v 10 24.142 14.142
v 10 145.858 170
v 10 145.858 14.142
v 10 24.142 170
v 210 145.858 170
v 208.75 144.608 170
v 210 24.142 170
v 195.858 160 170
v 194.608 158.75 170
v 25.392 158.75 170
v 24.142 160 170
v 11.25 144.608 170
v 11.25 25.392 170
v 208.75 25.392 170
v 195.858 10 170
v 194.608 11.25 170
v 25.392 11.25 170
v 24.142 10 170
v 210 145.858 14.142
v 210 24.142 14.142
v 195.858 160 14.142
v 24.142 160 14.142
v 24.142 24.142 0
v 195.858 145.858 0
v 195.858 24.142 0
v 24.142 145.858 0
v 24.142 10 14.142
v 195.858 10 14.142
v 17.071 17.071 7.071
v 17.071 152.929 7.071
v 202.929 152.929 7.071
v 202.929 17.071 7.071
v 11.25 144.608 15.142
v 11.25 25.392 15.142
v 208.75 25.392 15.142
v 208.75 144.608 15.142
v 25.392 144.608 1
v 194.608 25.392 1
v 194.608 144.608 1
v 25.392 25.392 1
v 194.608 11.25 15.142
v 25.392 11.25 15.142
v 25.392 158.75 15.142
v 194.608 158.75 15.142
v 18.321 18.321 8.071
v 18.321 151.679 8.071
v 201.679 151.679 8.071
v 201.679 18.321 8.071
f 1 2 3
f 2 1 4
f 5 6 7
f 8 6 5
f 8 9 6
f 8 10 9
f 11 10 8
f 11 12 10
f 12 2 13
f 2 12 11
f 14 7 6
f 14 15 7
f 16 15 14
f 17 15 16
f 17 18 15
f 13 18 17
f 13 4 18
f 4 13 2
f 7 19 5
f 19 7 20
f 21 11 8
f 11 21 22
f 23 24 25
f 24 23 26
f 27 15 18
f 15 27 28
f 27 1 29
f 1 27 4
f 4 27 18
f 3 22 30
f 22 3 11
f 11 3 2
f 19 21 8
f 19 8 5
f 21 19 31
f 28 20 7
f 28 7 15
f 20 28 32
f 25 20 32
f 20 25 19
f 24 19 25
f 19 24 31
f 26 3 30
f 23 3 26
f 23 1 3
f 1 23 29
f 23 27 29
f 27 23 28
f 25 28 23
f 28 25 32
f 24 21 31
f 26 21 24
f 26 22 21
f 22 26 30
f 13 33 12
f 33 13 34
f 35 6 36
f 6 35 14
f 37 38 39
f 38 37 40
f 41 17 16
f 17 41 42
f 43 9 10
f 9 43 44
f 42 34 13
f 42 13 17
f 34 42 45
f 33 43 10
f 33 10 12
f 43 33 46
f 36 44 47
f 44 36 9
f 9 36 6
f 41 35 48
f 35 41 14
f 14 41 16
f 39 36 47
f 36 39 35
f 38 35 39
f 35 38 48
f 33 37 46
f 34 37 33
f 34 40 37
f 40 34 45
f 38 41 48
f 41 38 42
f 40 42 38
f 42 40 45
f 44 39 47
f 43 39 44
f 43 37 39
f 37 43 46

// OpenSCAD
$fn=200;

length = 200;
width= 150;
height = 170;
thickness = 2.5;
zzz = 20;

translate([10, 10, 0]){
    difference() {
        dBox(length, width, height, zzz);
        halfThickness = thickness / 2;
        translate([halfThickness,halfThickness,1]) {
            dBox(length-thickness, width-thickness, height, zzz); 
        }
    }
}

//dBox(length, width, height, zzz); 
    
module dBox(length, width, height, zzz)
{    
  halfHeight = height / 2;
  halfWidth = width / 2;
  halfLength = length / 2;
    
  zzz2 = 2 * zzz;
    
  difference() {
    
    cube(size=[length, width, height]);

    translate([0, 0, halfHeight])
    rotate([0, 0, 45])
    cube([zzz, zzz, height + 2], center=true);

    translate([0, width, halfHeight])
    rotate([0, 0, 45])
    cube([zzz, zzz, height + 2], center=true);

    translate([length, width, halfHeight])
    rotate([0, 0, 45])
    cube([zzz, zzz, height + 2], center=true);
    
    translate([length, 0, halfHeight])
    rotate([0, 0, 45])
    cube([zzz, zzz, height + 2], center=true);
      
     
    translate([length, halfWidth, 0])
    rotate([0, 45, 0])
    cube([zzz, width, zzz], center=true);
    
    translate([0, halfWidth, 0])
    rotate([0, 45, 0])
    cube([zzz, width, zzz], center=true);
  
    translate([halfLength, 0, 0])
    rotate([45, 0, 0])
    cube([length, zzz, zzz], center=true);
  
    translate([halfLength, width, 0])
    rotate([45, 0, 0])
    cube([length, zzz, zzz], center=true);
  }
}
